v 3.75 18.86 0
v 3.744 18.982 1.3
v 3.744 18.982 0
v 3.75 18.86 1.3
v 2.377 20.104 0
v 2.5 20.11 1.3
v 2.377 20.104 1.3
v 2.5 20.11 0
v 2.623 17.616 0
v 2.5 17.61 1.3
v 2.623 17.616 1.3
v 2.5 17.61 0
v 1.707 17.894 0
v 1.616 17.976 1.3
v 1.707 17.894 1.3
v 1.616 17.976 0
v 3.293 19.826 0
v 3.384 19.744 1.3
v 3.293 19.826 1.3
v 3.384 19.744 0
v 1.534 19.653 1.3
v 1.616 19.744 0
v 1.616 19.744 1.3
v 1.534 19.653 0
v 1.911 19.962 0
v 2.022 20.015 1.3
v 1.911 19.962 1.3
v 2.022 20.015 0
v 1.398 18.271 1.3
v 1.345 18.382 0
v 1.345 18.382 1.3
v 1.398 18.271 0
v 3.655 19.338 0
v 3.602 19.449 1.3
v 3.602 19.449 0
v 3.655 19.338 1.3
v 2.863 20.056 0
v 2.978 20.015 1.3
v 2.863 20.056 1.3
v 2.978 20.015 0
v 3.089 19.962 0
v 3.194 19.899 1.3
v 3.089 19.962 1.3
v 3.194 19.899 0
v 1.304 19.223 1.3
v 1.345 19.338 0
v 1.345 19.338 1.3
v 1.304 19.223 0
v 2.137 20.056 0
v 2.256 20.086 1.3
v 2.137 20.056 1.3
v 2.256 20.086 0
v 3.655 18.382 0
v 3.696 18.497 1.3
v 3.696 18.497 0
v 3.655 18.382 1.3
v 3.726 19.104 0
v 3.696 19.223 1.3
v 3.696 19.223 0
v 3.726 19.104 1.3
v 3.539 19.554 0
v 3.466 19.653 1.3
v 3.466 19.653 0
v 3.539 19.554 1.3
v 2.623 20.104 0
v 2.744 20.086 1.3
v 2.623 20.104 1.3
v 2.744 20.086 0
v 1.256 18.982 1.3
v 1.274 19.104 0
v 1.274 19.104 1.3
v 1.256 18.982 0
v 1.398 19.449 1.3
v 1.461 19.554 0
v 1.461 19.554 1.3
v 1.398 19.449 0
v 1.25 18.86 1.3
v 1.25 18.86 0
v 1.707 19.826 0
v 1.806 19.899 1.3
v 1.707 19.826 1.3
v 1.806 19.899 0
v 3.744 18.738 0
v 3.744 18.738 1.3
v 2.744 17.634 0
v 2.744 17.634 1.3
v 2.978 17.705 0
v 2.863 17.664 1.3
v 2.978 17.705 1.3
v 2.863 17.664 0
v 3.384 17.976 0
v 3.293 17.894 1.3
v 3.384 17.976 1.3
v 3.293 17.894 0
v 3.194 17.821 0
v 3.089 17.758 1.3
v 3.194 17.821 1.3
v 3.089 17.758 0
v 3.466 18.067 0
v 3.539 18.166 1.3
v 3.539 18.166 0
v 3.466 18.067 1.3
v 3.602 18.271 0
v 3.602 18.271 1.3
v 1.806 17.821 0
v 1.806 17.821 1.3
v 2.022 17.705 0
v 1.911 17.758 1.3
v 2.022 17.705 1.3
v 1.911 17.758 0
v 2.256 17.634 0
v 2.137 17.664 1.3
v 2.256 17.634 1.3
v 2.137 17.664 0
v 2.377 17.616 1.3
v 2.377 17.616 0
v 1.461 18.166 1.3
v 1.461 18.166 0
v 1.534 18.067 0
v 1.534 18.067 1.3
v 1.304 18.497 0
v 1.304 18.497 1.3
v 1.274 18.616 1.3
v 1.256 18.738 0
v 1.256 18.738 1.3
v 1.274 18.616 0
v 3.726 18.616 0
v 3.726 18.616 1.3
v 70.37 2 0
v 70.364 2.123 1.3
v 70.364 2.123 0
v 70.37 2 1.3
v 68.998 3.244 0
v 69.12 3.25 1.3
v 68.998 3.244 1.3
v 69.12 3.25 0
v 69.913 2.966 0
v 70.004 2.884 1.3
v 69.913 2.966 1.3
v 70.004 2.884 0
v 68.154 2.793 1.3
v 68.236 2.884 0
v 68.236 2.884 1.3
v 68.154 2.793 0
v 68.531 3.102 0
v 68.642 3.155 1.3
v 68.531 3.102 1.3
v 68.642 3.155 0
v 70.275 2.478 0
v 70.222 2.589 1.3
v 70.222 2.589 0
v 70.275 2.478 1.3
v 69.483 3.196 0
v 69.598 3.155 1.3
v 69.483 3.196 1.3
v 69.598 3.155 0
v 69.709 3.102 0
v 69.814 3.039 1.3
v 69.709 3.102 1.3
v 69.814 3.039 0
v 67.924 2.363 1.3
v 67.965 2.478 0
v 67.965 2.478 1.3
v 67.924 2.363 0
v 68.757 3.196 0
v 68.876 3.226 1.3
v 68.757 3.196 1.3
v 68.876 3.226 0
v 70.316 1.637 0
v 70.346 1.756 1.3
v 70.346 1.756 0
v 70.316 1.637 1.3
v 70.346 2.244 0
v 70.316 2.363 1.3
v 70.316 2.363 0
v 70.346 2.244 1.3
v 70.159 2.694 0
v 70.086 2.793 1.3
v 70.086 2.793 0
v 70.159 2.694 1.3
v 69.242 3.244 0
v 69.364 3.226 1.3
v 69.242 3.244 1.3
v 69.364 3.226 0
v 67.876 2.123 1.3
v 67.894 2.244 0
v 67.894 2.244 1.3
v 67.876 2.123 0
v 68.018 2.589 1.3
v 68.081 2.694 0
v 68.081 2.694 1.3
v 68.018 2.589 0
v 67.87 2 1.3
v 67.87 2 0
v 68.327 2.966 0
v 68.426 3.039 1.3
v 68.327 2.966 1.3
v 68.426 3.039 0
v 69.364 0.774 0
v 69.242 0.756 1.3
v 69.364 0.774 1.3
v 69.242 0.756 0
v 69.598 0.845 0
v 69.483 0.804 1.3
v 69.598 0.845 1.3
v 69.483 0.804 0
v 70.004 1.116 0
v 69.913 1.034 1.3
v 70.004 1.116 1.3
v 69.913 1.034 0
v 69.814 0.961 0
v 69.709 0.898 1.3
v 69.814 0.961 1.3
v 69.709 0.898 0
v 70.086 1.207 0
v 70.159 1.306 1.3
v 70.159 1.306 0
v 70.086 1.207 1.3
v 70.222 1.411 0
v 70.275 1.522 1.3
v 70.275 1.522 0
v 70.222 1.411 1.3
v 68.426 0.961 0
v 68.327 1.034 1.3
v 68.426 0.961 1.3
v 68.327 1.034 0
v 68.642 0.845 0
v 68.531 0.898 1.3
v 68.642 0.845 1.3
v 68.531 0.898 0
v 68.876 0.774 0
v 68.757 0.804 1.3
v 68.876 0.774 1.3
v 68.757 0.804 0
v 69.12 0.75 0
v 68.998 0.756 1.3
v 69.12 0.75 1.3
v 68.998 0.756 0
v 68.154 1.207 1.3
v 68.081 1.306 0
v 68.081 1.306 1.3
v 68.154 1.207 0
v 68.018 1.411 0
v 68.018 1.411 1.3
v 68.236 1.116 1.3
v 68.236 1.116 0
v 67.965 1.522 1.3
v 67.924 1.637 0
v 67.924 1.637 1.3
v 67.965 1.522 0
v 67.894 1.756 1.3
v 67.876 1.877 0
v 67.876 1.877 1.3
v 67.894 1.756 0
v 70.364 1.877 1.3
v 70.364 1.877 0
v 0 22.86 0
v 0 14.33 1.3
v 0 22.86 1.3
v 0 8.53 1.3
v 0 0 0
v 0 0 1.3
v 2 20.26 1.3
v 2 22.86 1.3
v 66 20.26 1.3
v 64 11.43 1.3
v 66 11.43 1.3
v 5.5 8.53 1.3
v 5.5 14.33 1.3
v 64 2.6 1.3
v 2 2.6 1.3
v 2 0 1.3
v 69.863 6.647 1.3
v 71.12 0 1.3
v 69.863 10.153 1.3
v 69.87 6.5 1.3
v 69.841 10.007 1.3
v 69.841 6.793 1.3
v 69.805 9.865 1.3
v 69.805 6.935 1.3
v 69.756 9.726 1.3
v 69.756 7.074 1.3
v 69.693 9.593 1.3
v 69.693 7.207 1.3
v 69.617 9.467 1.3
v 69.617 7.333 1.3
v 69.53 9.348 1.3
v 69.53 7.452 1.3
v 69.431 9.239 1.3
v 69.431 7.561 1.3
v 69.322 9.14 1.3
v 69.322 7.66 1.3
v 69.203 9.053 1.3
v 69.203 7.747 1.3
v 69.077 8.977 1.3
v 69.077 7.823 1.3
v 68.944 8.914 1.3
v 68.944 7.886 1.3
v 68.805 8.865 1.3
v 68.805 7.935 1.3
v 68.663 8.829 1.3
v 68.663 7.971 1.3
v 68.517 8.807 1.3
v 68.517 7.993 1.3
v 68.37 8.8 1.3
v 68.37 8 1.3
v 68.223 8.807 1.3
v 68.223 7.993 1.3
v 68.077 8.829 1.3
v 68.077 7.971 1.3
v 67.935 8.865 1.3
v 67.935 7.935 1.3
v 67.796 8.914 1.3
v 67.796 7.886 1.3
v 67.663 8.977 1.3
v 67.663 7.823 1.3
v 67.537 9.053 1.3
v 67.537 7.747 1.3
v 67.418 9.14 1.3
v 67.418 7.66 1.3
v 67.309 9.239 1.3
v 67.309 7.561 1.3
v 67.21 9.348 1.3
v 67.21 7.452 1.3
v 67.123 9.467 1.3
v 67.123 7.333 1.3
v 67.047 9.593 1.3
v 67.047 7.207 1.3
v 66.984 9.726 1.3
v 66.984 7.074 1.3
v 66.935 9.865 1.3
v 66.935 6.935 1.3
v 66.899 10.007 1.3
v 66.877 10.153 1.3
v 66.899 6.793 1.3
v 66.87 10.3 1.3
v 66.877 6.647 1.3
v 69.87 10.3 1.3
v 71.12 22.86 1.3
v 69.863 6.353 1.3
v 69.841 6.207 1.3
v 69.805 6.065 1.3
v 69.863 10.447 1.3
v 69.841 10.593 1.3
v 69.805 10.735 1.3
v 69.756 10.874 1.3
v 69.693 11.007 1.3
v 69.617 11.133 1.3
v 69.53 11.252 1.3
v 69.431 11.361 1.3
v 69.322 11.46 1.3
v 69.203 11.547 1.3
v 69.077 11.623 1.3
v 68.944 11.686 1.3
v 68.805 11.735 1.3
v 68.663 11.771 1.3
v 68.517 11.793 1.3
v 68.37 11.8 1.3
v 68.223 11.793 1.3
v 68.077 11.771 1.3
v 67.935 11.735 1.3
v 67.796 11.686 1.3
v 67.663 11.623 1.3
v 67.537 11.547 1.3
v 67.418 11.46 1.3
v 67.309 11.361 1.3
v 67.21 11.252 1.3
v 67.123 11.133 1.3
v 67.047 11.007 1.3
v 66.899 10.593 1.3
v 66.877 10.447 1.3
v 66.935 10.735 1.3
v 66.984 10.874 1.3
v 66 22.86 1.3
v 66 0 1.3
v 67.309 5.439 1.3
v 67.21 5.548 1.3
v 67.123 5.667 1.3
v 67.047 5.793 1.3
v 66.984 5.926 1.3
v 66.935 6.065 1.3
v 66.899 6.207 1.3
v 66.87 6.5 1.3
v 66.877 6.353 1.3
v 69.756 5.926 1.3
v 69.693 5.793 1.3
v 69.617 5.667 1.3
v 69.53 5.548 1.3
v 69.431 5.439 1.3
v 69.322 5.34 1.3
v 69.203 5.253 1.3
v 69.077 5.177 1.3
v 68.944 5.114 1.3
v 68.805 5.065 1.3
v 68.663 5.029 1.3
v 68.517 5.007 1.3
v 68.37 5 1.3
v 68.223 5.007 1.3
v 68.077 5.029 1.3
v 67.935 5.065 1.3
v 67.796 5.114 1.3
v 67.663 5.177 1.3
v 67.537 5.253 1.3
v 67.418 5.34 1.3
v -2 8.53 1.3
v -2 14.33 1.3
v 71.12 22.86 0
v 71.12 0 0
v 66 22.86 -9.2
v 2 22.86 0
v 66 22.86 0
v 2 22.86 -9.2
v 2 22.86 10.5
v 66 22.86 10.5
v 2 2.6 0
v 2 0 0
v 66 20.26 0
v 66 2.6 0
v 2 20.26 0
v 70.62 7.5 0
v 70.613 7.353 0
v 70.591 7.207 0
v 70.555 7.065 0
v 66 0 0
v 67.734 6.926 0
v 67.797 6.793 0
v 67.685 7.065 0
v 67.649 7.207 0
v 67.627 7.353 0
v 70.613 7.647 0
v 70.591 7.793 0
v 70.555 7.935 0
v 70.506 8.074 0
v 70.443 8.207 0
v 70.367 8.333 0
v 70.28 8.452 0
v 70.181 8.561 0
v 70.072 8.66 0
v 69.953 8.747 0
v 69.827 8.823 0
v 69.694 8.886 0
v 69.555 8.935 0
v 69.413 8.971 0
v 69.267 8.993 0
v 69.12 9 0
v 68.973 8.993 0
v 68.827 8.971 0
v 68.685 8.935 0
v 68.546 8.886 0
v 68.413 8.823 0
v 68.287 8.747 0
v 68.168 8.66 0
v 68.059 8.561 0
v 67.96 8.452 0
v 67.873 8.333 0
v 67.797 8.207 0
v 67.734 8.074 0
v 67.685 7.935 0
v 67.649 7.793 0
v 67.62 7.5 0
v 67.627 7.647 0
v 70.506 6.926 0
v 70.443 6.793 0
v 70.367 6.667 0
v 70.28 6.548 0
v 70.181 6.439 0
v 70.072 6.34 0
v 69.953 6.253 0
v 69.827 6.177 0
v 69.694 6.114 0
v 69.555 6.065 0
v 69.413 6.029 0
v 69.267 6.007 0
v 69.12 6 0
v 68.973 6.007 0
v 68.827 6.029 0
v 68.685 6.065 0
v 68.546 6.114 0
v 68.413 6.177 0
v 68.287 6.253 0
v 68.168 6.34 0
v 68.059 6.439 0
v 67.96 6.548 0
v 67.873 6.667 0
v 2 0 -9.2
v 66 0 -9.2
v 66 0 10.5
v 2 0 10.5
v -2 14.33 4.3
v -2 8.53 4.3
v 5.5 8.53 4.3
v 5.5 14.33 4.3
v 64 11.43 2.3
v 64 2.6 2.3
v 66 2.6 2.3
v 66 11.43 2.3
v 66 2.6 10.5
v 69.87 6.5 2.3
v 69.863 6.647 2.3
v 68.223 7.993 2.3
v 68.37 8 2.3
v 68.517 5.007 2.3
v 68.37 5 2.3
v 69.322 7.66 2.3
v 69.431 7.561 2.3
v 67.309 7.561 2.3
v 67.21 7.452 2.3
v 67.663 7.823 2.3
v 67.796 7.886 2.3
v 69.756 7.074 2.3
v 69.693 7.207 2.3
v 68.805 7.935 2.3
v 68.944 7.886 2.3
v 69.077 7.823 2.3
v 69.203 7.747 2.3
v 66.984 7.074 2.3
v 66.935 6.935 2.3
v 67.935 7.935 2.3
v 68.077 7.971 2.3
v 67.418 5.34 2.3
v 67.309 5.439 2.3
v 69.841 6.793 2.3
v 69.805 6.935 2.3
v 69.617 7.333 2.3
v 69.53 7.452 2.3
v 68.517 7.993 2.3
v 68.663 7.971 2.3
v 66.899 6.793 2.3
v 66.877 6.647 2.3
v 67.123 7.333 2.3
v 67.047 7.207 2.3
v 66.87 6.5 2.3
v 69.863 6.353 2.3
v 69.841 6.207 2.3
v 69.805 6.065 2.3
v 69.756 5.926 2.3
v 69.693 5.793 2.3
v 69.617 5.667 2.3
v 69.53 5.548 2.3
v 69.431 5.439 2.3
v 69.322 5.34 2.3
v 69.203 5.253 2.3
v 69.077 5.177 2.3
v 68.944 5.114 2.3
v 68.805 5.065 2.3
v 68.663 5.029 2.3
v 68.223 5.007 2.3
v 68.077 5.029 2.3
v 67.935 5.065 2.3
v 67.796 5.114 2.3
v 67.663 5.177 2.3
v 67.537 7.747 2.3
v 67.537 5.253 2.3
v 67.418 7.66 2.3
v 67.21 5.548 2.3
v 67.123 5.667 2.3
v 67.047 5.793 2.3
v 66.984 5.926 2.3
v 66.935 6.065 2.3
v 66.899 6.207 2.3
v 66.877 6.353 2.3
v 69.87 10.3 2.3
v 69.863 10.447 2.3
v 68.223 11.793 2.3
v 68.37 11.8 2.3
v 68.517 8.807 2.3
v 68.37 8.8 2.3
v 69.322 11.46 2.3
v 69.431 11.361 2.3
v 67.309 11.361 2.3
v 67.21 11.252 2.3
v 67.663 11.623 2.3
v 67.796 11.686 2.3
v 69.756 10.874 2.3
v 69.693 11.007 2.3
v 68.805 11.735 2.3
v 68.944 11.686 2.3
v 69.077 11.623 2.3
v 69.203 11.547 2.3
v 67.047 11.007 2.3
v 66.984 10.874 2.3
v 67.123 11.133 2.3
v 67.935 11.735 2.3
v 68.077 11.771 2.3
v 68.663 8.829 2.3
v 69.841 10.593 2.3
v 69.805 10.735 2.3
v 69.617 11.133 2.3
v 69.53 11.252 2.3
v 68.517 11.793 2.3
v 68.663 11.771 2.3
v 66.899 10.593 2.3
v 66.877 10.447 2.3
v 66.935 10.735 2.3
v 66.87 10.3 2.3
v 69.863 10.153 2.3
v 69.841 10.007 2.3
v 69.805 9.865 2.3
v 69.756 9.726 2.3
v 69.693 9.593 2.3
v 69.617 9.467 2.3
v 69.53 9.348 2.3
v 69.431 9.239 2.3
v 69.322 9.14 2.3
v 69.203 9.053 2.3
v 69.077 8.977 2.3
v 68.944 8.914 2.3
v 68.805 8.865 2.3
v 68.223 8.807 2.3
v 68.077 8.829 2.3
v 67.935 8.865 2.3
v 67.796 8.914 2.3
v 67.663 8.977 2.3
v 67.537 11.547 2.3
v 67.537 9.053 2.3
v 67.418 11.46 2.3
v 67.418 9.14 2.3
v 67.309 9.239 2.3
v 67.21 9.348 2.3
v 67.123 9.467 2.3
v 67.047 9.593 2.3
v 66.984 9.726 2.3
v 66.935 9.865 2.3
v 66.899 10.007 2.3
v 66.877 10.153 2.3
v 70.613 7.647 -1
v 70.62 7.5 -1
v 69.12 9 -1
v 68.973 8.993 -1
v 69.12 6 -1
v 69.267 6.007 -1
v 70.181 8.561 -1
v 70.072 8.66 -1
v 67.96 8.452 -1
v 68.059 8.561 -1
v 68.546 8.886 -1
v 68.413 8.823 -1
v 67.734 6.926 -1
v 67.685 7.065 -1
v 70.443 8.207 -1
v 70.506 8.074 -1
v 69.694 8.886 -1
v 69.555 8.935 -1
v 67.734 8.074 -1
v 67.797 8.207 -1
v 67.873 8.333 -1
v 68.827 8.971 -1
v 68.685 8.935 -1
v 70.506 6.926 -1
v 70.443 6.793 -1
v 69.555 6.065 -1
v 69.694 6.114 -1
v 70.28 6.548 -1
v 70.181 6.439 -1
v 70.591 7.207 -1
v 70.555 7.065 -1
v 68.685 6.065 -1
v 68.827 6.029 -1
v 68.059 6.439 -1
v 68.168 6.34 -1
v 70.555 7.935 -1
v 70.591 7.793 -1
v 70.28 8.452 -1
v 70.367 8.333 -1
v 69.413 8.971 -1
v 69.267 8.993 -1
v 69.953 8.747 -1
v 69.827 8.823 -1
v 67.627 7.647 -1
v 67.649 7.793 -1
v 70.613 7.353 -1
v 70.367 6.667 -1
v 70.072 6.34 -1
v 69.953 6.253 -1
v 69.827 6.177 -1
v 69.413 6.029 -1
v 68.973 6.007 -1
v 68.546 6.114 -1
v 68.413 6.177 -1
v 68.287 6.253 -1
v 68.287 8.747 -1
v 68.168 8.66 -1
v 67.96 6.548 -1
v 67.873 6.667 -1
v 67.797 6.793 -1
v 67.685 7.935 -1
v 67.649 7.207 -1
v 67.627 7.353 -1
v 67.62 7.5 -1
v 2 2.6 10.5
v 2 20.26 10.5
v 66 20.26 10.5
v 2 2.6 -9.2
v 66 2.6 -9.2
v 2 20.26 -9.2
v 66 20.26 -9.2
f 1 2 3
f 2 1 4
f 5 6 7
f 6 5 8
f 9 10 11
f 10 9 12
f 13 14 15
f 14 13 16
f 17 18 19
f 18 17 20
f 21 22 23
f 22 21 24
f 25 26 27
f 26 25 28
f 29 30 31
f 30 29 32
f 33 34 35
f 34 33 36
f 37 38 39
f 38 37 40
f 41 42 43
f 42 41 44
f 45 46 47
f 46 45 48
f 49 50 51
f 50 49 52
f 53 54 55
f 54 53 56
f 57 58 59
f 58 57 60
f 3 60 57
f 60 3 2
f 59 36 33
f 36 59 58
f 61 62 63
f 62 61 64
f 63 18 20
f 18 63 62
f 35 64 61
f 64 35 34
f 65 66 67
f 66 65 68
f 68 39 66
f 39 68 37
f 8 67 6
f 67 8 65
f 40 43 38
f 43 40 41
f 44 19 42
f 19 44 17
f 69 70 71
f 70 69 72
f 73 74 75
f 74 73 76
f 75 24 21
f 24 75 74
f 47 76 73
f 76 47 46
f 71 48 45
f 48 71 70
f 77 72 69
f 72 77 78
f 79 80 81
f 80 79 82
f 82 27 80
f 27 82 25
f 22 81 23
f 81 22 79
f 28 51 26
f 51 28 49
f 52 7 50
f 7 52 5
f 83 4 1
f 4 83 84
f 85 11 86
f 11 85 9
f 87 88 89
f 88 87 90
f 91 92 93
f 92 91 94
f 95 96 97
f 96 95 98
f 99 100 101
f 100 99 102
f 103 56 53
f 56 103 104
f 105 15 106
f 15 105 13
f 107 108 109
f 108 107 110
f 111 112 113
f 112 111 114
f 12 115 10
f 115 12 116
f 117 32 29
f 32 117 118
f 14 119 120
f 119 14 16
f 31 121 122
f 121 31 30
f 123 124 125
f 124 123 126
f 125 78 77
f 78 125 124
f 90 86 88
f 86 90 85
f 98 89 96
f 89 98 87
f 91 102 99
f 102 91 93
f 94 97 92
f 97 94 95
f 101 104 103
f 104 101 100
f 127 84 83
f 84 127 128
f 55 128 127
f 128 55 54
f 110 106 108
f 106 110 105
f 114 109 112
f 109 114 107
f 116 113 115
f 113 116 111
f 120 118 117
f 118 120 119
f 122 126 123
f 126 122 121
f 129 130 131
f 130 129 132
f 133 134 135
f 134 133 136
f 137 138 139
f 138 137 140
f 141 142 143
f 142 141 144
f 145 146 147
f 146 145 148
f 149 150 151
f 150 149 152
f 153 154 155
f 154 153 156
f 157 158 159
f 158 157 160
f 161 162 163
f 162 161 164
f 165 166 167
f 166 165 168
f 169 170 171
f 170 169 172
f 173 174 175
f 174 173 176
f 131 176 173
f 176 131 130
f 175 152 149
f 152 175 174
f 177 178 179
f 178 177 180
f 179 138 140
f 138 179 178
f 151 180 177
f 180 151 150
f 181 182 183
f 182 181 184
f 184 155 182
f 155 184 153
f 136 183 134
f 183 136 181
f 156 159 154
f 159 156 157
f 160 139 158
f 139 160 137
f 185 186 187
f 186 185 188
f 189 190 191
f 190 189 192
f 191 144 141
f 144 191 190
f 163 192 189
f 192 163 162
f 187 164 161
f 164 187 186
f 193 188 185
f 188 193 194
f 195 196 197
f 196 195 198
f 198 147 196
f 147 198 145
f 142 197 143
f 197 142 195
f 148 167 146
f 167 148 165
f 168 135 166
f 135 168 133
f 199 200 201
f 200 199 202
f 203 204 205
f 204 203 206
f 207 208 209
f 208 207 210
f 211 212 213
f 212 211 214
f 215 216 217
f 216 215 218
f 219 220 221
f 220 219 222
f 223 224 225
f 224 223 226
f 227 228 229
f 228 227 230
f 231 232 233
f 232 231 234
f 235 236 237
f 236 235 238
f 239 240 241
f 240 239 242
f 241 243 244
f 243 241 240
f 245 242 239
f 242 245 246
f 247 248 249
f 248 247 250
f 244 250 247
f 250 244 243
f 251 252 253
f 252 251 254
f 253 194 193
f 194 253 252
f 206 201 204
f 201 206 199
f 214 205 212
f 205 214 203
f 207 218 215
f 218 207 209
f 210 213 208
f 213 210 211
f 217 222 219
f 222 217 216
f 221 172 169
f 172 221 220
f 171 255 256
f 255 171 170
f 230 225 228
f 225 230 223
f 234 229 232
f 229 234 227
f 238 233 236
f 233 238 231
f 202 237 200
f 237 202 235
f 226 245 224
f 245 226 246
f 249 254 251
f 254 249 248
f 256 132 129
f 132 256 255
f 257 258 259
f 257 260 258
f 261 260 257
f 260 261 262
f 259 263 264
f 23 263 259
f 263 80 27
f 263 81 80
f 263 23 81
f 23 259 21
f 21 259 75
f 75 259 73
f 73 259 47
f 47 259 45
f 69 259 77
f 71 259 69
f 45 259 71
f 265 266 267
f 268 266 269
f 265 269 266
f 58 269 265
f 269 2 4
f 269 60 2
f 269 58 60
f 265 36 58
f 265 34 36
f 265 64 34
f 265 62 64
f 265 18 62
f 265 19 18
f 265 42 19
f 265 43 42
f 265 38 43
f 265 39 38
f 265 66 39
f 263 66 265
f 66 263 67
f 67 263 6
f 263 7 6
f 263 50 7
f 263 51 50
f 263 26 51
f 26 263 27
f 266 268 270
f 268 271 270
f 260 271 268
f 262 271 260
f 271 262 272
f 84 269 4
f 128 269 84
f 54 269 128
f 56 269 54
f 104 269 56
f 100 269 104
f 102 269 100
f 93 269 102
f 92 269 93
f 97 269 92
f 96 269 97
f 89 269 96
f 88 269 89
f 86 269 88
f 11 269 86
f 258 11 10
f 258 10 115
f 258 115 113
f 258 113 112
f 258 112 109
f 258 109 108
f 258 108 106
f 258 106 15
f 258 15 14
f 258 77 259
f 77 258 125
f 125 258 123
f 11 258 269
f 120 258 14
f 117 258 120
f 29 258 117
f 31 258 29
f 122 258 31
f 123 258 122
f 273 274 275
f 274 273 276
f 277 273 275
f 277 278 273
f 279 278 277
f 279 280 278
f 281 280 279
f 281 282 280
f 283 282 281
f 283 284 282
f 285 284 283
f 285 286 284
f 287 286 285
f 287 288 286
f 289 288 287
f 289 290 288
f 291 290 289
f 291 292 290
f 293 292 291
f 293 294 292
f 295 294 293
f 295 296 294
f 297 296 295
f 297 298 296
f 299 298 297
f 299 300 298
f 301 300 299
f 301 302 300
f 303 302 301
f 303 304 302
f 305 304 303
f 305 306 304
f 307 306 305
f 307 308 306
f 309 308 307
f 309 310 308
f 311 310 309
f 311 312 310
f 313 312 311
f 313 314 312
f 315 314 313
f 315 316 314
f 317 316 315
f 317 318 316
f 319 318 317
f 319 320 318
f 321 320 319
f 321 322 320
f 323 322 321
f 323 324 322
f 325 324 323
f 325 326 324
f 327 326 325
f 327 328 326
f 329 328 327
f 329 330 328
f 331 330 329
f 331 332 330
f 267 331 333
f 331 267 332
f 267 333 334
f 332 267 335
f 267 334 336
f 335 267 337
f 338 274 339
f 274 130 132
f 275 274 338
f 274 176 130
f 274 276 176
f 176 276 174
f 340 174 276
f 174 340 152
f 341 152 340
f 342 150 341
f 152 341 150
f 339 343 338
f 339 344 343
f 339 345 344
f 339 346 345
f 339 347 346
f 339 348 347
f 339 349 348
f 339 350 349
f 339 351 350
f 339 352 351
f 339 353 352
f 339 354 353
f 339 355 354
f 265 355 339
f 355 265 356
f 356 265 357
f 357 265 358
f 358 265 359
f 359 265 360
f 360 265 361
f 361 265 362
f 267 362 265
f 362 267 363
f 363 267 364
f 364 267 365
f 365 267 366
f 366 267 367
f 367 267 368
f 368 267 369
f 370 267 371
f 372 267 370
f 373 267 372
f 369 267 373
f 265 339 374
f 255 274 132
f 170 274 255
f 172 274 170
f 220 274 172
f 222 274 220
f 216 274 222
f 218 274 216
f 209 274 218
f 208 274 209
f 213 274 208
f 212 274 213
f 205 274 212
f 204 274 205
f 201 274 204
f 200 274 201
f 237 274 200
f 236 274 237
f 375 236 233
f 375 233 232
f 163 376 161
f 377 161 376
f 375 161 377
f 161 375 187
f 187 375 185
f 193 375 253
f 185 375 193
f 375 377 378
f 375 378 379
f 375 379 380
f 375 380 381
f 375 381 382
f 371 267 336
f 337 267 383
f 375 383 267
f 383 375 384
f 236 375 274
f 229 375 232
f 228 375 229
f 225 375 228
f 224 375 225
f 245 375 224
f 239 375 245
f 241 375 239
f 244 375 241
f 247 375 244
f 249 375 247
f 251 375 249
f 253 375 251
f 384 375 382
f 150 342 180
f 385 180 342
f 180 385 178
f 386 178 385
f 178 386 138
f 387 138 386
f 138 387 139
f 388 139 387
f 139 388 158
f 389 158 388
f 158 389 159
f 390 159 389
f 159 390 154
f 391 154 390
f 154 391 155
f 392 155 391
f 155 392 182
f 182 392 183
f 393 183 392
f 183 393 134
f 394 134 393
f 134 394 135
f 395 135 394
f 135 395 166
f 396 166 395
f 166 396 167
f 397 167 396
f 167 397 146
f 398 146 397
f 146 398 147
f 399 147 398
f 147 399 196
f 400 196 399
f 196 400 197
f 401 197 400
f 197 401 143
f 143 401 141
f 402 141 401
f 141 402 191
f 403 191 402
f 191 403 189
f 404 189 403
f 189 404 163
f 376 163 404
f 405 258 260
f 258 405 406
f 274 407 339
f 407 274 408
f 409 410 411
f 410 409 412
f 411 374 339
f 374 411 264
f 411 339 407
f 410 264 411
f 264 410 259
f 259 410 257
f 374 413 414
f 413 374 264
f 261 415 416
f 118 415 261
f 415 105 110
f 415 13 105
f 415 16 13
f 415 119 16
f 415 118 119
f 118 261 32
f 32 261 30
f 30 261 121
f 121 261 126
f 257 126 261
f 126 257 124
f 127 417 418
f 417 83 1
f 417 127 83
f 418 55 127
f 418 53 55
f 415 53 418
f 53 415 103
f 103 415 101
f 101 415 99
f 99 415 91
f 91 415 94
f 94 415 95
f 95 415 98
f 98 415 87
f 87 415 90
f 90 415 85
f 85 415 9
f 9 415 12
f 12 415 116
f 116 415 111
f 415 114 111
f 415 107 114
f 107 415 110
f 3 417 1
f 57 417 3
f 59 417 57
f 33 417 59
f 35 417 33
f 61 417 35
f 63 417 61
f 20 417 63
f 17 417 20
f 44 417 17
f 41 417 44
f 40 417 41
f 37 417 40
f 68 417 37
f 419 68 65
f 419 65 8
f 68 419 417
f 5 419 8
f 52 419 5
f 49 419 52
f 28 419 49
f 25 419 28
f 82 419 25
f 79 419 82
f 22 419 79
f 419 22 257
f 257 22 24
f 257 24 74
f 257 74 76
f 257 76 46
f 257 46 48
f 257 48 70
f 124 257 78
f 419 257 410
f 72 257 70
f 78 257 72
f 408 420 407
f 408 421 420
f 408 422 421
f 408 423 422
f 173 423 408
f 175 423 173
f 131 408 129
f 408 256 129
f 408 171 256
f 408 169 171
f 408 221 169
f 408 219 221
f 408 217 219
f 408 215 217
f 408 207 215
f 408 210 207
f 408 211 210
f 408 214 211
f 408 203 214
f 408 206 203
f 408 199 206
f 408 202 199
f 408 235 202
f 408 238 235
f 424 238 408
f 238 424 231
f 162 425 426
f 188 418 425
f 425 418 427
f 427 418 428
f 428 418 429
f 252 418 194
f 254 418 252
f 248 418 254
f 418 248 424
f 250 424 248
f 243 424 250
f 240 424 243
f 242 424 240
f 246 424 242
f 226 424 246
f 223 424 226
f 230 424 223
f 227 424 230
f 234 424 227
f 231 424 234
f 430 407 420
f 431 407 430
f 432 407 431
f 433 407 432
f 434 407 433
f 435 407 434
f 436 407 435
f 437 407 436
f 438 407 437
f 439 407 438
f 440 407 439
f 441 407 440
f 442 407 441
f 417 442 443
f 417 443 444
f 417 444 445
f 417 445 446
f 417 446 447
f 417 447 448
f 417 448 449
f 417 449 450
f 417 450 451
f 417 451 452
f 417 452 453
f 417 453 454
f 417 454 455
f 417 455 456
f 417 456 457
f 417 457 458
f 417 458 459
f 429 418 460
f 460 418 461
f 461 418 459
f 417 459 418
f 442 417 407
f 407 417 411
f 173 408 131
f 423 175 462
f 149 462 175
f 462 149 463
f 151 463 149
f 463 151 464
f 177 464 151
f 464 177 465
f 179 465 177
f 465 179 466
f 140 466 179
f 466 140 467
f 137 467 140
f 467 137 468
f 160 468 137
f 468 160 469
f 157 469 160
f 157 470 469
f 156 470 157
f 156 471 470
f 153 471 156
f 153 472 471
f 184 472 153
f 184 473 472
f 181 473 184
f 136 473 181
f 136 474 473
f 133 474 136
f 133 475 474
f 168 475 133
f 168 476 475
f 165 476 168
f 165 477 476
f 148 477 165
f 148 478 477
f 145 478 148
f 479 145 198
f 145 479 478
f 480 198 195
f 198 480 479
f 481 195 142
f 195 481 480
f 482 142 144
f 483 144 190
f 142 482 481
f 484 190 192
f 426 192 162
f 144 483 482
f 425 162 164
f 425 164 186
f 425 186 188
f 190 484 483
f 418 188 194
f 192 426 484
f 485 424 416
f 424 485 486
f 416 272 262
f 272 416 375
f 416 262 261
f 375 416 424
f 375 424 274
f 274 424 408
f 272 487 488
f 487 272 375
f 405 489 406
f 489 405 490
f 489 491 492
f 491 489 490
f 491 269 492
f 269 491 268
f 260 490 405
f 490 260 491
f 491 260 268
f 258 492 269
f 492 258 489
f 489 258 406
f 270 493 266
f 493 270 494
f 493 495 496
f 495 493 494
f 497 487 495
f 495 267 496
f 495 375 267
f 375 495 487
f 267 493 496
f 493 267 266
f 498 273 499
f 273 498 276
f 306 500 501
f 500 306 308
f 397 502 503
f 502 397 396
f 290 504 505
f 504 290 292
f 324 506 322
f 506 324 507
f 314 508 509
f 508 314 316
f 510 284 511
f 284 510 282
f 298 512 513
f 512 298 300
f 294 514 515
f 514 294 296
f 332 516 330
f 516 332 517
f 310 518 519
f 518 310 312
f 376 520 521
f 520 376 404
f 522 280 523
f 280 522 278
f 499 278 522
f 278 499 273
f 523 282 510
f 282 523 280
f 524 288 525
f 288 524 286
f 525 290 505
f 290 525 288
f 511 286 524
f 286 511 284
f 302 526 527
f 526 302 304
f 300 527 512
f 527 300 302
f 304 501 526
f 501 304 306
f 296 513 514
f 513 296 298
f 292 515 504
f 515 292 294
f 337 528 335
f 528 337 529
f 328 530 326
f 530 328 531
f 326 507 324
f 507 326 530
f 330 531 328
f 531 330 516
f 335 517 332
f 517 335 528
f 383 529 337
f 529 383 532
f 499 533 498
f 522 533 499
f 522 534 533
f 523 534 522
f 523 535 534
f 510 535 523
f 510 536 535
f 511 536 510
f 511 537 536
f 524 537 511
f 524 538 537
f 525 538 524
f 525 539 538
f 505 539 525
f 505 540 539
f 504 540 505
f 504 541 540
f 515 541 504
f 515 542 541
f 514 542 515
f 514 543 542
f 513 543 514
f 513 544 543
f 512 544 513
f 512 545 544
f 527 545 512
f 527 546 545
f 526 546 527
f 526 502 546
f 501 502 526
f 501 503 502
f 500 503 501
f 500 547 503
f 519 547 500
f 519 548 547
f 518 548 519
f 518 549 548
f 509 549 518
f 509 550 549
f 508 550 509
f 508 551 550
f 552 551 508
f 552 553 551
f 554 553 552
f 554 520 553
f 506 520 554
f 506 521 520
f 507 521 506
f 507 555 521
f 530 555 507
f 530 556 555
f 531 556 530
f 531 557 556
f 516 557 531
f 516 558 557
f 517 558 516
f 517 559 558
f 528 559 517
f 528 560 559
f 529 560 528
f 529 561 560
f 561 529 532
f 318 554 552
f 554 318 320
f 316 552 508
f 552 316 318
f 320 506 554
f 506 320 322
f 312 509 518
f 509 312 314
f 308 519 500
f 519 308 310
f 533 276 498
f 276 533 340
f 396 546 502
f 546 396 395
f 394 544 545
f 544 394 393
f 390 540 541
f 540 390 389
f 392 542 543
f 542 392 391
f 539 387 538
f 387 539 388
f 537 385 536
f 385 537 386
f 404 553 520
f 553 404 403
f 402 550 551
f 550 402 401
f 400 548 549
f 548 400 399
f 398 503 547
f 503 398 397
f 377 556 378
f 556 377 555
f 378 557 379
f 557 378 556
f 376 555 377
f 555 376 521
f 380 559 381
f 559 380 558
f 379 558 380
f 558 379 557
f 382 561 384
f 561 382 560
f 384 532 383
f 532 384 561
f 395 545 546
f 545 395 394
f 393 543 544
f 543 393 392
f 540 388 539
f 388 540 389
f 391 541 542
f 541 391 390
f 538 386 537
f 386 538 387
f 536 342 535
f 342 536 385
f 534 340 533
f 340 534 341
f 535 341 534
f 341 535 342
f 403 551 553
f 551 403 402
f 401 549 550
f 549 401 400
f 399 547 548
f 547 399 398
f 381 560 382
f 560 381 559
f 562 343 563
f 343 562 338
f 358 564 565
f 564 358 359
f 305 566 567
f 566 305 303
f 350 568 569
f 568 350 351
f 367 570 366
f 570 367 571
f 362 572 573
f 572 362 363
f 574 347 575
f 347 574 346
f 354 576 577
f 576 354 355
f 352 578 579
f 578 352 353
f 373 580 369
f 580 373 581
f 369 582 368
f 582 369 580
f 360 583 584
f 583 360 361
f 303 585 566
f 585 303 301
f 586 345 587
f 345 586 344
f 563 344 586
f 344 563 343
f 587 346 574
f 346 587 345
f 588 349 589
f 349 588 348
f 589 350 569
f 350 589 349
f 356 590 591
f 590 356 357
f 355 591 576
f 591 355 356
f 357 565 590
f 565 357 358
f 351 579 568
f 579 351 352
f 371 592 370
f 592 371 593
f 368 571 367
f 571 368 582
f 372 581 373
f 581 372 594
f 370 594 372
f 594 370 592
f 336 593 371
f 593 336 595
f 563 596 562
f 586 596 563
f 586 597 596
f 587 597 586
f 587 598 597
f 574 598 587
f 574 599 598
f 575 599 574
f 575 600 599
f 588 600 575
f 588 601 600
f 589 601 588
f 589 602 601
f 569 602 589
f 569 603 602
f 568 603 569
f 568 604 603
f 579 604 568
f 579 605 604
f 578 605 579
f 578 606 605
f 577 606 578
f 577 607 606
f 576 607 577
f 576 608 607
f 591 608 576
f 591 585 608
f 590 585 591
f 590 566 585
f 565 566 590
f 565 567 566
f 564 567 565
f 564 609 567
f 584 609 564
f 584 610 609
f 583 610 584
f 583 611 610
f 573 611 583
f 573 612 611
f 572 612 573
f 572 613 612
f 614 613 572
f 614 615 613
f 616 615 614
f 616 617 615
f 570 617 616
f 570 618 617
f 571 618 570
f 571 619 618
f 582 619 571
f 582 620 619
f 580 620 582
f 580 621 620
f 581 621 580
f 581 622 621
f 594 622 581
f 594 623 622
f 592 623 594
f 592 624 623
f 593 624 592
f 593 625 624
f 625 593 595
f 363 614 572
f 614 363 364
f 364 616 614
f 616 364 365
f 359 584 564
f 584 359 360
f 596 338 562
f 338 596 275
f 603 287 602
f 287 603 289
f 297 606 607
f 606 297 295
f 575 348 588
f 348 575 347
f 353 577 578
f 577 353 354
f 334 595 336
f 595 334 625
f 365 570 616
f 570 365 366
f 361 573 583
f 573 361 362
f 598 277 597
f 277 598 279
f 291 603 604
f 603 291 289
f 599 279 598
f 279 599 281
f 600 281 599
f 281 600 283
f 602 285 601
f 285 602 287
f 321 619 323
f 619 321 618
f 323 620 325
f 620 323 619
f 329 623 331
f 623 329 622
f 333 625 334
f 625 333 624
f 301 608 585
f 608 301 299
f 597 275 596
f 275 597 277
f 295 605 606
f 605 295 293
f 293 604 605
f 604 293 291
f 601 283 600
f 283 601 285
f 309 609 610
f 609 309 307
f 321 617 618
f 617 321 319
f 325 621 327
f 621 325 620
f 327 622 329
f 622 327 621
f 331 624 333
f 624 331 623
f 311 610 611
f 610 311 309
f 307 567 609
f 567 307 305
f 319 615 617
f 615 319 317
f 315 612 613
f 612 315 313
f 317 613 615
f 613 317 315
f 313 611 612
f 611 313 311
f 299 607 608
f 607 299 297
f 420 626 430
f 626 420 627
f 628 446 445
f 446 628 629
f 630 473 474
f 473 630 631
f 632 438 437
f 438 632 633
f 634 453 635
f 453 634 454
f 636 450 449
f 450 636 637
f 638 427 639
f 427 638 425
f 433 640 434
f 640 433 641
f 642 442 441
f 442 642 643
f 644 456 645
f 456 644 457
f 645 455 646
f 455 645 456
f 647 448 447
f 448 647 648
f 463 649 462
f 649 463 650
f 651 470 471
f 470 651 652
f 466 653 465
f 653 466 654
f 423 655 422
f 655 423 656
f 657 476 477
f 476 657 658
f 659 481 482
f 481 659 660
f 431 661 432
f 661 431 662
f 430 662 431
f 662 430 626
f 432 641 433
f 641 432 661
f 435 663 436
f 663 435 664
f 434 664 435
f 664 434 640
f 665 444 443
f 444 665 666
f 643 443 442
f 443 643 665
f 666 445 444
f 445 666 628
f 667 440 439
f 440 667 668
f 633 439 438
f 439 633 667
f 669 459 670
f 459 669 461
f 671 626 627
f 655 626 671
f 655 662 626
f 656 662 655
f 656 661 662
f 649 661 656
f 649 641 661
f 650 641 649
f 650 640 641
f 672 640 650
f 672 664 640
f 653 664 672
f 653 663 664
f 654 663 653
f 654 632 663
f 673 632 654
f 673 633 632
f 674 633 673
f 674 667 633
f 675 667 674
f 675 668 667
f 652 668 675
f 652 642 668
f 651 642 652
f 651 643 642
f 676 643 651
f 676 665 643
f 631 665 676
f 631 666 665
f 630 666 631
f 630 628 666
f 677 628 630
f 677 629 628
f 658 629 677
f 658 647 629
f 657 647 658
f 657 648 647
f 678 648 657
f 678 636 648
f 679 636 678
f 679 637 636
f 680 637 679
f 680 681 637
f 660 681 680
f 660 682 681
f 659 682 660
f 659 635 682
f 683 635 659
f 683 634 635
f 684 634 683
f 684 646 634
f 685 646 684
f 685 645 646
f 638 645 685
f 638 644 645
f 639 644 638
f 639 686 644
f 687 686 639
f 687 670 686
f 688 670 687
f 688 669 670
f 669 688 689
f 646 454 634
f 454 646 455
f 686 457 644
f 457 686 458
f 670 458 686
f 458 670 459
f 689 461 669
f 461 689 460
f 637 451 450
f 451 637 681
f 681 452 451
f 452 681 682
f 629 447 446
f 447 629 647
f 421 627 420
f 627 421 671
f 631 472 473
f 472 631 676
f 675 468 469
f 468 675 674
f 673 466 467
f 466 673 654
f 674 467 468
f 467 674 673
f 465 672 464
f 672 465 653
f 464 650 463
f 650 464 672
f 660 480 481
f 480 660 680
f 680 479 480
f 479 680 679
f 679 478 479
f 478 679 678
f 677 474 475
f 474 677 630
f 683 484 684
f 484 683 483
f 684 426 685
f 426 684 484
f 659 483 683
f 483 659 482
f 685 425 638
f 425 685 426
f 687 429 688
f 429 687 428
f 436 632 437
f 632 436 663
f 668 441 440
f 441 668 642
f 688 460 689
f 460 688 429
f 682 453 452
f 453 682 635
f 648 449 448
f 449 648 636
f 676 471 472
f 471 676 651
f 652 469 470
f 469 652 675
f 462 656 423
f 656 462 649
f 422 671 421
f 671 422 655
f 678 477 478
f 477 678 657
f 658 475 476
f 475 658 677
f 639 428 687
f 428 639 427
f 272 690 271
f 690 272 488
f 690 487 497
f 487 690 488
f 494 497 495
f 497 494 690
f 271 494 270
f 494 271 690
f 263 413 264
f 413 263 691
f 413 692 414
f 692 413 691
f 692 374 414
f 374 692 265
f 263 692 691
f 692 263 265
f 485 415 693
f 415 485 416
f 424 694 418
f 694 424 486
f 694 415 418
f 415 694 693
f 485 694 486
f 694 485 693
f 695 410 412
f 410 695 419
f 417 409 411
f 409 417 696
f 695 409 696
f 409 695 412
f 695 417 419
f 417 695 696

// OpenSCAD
// Arduino Yun Mini 3D model for planning

$fn = 64;

length = 71.12;
width = 22.86;
height = 1.3;
header_length = 64;

module board() {
    cube([length, width, height]);
}

module usb_power() {
    translate([-2, (width - 5.8) / 2, height]) cube([7.5, 5.8, 3]);
}

module header(y = 0, z = 0) {
    translate([2, y, z]) cube([header_length, 2.6, 9.2]);
}

module leds() {
    translate([header_length, 0, height]) cube([2, width/2, 1]);
}

module button(y = 0) {
    translate([length - 2.75, y, height]) cylinder(r=3/2, h=1);    
}

module bottom_button() {
    translate([length - 2, 7.5, -1]) cylinder(r=3/2, h=1); 
}

module hole(x = 0, y = 0) {
    translate([x, y, -9]) cylinder(h = 10 + height, r = 2.5/2);
}

module arduino_yun_mini() {
    difference() {
        color("green") board();
        union() {
            hole(x = 2.5, y = width - 4);
            hole(x = length - 2, y = 2);
        }
    }

    color("magenta") usb_power();
    color("red") leds();
    color("blue") button(y = 6.5);
    color("blue") button(y = 10.3);
    color("violet") bottom_button(y = 10.3);
    color("black") header(z = height, y = 0);
    color("black") header(z = height, y = width - 2.6);
    color("silver") header(z = -9.2, y = 0);
    color("silver") header(z = -9.2, y = width - 2.6);
}

arduino_yun_mini();
